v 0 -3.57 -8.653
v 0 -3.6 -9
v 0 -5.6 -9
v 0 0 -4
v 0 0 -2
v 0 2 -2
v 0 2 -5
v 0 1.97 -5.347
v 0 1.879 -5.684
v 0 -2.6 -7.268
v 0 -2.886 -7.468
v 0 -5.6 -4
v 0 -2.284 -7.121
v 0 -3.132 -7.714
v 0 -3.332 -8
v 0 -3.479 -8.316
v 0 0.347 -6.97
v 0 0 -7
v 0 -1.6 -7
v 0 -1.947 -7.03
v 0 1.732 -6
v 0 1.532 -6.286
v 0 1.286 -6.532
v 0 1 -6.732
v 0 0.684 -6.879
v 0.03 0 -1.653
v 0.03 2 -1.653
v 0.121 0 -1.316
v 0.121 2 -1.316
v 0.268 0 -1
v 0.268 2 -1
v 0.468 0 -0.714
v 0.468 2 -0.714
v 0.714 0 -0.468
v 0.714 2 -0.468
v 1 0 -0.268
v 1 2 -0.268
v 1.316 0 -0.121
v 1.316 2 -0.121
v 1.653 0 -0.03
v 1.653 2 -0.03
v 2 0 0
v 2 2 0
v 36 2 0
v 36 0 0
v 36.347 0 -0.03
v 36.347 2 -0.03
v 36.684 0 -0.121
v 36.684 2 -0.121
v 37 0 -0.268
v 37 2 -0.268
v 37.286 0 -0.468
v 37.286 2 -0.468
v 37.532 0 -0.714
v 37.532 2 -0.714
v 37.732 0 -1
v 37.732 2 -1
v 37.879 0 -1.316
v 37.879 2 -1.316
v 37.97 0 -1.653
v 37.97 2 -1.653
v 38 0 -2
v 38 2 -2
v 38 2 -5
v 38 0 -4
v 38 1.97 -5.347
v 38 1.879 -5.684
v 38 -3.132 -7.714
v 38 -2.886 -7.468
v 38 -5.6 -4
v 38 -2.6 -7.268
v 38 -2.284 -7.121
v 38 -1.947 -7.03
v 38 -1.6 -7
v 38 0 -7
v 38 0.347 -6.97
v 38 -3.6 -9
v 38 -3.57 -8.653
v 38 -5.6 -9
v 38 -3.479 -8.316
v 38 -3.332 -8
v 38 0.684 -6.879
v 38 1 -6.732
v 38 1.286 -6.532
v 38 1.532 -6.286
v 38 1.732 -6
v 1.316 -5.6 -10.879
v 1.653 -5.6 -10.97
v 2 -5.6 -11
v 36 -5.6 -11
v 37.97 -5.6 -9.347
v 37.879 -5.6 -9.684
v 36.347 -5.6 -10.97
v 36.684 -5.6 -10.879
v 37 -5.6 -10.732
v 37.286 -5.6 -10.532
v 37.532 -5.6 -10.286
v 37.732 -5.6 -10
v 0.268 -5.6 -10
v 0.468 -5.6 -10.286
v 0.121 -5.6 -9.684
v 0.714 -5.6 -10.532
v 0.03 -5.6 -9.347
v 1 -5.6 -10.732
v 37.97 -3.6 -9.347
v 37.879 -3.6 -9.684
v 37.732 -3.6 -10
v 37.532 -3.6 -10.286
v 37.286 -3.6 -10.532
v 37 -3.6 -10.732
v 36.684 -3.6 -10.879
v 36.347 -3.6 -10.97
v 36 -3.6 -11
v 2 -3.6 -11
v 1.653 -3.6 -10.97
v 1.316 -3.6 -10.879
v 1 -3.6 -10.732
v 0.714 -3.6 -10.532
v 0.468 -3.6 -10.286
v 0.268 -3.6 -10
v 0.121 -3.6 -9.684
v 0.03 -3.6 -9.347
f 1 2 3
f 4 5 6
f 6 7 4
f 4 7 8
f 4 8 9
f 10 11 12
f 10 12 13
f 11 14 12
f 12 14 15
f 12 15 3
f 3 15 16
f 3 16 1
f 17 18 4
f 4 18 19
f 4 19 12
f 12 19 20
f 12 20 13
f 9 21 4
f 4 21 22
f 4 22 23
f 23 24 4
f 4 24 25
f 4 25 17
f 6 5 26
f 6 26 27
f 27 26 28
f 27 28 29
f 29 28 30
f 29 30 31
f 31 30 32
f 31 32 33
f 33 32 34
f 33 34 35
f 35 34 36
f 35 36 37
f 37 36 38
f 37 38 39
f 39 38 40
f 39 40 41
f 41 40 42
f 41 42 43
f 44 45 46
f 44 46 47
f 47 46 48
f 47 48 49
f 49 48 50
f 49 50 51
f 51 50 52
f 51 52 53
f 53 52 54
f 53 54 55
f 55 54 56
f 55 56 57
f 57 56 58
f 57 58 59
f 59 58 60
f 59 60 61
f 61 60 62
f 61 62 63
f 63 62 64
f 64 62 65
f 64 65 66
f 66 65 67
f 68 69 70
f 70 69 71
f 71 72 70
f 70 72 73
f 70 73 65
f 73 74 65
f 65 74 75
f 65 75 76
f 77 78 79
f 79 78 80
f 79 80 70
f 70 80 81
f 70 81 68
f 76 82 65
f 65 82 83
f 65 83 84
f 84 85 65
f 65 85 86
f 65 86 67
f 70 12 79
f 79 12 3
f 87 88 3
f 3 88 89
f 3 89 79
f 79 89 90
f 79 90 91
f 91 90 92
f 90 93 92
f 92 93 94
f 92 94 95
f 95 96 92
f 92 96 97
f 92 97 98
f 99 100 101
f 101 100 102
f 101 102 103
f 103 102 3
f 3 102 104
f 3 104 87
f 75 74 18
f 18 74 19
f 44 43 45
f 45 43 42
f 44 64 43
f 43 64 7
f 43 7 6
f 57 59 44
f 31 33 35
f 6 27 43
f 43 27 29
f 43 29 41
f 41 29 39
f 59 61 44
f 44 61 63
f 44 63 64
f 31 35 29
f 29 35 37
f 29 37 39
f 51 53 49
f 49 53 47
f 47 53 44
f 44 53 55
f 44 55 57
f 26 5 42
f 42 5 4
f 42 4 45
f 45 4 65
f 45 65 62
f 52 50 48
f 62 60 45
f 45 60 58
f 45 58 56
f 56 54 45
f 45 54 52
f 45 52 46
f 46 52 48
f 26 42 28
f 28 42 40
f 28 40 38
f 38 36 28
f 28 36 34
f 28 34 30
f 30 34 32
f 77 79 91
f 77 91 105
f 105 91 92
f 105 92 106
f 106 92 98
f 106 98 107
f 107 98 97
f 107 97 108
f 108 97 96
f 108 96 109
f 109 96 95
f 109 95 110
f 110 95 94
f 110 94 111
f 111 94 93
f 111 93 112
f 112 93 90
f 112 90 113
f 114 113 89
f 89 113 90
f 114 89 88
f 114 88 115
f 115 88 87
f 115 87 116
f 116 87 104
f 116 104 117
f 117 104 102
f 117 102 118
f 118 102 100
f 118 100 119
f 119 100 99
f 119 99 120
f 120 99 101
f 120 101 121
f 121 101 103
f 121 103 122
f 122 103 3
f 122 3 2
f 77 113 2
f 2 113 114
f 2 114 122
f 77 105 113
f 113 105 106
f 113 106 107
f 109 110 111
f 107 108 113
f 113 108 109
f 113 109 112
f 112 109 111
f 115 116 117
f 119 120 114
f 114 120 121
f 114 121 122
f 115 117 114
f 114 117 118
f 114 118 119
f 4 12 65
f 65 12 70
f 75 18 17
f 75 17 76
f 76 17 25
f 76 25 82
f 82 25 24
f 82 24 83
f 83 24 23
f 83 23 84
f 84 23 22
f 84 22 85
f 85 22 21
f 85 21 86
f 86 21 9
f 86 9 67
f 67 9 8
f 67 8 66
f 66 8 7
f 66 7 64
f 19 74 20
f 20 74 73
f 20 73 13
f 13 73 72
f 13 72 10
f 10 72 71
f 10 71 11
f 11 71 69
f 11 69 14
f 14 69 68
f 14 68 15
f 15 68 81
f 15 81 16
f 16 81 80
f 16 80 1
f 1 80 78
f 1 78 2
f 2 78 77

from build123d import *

# Parameters (mm, degrees)
BOSS_EXTRUDE1_DEPTH = 2
BOSS_EXTRUDE2_START = -7.6
BOSS_EXTRUDE2_DEPTH = 7.6
BOSS_EXTRUDE3_DEPTH = 2
SKETCH5_W           = 38
SKETCH5_H           = 5.8
CUT_EXTRUDE1_DEPTH  = 40.954474092
SKETCH6_W           = 38
SKETCH6_H           = 3
BOSS_EXTRUDE4_DEPTH = 7.6
FILLET1_R           = 2


with BuildPart() as part:
    # Sketch1 → Boss-Extrude1 (new body)
    with BuildSketch(Plane(origin=(0, 0, 0), x_dir=(1, 0, 0), z_dir=(0, 1, 0))):
        with BuildLine():
            Line((2, 0), (36, 0))
            ThreePointArc((36, 0), (37.414213562, 0.585786438), (38, 2))
            Line((38, 2), (38, 6))
            ThreePointArc((38, 6), (37.707106781, 6.707106781), (37, 7))
            Line((37, 7), (1, 7))
            ThreePointArc((1, 7), (0.292893219, 6.707106781), (0, 6))
            Line((0, 6), (0, 2))
            ThreePointArc((0, 2), (0.585786438, 0.585786438), (2, 0))
        make_face()
    extrude(amount=BOSS_EXTRUDE1_DEPTH)

    # Sketch2 → Boss-Extrude2 (add)
    with BuildSketch(Plane(origin=(0, 2, 0), x_dir=(1, 0, 0), z_dir=(0, 1, 0)).offset(BOSS_EXTRUDE2_START)):
        with BuildLine():
            Line((38, 6), (38, 2))
            ThreePointArc((38, 2), (37.788854382, 1.105572809), (37.2, 0.4))
            Line((37.2, 0.4), (37.2, 5.3))
            ThreePointArc((37.2, 5.3), (37.053553391, 5.653553391), (36.7, 5.8))
            Line((36.7, 5.8), (1.3, 5.8))
            ThreePointArc((1.3, 5.8), (0.946446609, 5.653553391), (0.8, 5.3))
            Line((0.8, 5.3), (0.8, 0.4))
            ThreePointArc((0.8, 0.4), (0.211145618, 1.105572809), (0, 2))
            Line((0, 2), (0, 6))
            ThreePointArc((0, 6), (0.292893219, 6.707106781), (1, 7))
            Line((1, 7), (37, 7))
            ThreePointArc((37, 7), (37.707106781, 6.707106781), (38, 6))
        make_face()
    extrude(amount=BOSS_EXTRUDE2_DEPTH)

    # Sketch4 → Boss-Extrude3 (add)
    with BuildSketch(Plane.XZ.offset(5.6)):
        with BuildLine():
            Line((37, -7), (1, -7))
            ThreePointArc((1, -7), (0.292893219, -6.707106781), (0, -6))
            Line((0, -6), (0, -9))
            ThreePointArc((0, -9), (0.585786438, -10.414213562), (2, -11))
            Line((2, -11), (36, -11))
            ThreePointArc((36, -11), (37.414213562, -10.414213562), (38, -9))
            Line((38, -9), (38, -6))
            ThreePointArc((38, -6), (37.707106781, -6.707106781), (37, -7))
        make_face()
    extrude(amount=-BOSS_EXTRUDE3_DEPTH)

    # Sketch5 → Cut-Extrude1 (cut, through all)
    with BuildSketch(Plane.XZ):
        with Locations((19, -2.9)):
            Rectangle(SKETCH5_W, SKETCH5_H)
    extrude(amount=CUT_EXTRUDE1_DEPTH, mode=Mode.SUBTRACT)

    # Sketch6 → Boss-Extrude4 (add)
    with BuildSketch(Plane.XZ.offset(5.6)):
        with Locations((19, -5.5)):
            Rectangle(SKETCH6_W, SKETCH6_H)
    extrude(amount=-BOSS_EXTRUDE4_DEPTH)

    # Fillet1
    fillet1_edges = [part.edges().sort_by_distance(p)[0] for p in [
        (19, 2, -7),
        (19, -3.6, -7),
    ]]
    fillet(fillet1_edges, radius=FILLET1_R)


solid = part.part
